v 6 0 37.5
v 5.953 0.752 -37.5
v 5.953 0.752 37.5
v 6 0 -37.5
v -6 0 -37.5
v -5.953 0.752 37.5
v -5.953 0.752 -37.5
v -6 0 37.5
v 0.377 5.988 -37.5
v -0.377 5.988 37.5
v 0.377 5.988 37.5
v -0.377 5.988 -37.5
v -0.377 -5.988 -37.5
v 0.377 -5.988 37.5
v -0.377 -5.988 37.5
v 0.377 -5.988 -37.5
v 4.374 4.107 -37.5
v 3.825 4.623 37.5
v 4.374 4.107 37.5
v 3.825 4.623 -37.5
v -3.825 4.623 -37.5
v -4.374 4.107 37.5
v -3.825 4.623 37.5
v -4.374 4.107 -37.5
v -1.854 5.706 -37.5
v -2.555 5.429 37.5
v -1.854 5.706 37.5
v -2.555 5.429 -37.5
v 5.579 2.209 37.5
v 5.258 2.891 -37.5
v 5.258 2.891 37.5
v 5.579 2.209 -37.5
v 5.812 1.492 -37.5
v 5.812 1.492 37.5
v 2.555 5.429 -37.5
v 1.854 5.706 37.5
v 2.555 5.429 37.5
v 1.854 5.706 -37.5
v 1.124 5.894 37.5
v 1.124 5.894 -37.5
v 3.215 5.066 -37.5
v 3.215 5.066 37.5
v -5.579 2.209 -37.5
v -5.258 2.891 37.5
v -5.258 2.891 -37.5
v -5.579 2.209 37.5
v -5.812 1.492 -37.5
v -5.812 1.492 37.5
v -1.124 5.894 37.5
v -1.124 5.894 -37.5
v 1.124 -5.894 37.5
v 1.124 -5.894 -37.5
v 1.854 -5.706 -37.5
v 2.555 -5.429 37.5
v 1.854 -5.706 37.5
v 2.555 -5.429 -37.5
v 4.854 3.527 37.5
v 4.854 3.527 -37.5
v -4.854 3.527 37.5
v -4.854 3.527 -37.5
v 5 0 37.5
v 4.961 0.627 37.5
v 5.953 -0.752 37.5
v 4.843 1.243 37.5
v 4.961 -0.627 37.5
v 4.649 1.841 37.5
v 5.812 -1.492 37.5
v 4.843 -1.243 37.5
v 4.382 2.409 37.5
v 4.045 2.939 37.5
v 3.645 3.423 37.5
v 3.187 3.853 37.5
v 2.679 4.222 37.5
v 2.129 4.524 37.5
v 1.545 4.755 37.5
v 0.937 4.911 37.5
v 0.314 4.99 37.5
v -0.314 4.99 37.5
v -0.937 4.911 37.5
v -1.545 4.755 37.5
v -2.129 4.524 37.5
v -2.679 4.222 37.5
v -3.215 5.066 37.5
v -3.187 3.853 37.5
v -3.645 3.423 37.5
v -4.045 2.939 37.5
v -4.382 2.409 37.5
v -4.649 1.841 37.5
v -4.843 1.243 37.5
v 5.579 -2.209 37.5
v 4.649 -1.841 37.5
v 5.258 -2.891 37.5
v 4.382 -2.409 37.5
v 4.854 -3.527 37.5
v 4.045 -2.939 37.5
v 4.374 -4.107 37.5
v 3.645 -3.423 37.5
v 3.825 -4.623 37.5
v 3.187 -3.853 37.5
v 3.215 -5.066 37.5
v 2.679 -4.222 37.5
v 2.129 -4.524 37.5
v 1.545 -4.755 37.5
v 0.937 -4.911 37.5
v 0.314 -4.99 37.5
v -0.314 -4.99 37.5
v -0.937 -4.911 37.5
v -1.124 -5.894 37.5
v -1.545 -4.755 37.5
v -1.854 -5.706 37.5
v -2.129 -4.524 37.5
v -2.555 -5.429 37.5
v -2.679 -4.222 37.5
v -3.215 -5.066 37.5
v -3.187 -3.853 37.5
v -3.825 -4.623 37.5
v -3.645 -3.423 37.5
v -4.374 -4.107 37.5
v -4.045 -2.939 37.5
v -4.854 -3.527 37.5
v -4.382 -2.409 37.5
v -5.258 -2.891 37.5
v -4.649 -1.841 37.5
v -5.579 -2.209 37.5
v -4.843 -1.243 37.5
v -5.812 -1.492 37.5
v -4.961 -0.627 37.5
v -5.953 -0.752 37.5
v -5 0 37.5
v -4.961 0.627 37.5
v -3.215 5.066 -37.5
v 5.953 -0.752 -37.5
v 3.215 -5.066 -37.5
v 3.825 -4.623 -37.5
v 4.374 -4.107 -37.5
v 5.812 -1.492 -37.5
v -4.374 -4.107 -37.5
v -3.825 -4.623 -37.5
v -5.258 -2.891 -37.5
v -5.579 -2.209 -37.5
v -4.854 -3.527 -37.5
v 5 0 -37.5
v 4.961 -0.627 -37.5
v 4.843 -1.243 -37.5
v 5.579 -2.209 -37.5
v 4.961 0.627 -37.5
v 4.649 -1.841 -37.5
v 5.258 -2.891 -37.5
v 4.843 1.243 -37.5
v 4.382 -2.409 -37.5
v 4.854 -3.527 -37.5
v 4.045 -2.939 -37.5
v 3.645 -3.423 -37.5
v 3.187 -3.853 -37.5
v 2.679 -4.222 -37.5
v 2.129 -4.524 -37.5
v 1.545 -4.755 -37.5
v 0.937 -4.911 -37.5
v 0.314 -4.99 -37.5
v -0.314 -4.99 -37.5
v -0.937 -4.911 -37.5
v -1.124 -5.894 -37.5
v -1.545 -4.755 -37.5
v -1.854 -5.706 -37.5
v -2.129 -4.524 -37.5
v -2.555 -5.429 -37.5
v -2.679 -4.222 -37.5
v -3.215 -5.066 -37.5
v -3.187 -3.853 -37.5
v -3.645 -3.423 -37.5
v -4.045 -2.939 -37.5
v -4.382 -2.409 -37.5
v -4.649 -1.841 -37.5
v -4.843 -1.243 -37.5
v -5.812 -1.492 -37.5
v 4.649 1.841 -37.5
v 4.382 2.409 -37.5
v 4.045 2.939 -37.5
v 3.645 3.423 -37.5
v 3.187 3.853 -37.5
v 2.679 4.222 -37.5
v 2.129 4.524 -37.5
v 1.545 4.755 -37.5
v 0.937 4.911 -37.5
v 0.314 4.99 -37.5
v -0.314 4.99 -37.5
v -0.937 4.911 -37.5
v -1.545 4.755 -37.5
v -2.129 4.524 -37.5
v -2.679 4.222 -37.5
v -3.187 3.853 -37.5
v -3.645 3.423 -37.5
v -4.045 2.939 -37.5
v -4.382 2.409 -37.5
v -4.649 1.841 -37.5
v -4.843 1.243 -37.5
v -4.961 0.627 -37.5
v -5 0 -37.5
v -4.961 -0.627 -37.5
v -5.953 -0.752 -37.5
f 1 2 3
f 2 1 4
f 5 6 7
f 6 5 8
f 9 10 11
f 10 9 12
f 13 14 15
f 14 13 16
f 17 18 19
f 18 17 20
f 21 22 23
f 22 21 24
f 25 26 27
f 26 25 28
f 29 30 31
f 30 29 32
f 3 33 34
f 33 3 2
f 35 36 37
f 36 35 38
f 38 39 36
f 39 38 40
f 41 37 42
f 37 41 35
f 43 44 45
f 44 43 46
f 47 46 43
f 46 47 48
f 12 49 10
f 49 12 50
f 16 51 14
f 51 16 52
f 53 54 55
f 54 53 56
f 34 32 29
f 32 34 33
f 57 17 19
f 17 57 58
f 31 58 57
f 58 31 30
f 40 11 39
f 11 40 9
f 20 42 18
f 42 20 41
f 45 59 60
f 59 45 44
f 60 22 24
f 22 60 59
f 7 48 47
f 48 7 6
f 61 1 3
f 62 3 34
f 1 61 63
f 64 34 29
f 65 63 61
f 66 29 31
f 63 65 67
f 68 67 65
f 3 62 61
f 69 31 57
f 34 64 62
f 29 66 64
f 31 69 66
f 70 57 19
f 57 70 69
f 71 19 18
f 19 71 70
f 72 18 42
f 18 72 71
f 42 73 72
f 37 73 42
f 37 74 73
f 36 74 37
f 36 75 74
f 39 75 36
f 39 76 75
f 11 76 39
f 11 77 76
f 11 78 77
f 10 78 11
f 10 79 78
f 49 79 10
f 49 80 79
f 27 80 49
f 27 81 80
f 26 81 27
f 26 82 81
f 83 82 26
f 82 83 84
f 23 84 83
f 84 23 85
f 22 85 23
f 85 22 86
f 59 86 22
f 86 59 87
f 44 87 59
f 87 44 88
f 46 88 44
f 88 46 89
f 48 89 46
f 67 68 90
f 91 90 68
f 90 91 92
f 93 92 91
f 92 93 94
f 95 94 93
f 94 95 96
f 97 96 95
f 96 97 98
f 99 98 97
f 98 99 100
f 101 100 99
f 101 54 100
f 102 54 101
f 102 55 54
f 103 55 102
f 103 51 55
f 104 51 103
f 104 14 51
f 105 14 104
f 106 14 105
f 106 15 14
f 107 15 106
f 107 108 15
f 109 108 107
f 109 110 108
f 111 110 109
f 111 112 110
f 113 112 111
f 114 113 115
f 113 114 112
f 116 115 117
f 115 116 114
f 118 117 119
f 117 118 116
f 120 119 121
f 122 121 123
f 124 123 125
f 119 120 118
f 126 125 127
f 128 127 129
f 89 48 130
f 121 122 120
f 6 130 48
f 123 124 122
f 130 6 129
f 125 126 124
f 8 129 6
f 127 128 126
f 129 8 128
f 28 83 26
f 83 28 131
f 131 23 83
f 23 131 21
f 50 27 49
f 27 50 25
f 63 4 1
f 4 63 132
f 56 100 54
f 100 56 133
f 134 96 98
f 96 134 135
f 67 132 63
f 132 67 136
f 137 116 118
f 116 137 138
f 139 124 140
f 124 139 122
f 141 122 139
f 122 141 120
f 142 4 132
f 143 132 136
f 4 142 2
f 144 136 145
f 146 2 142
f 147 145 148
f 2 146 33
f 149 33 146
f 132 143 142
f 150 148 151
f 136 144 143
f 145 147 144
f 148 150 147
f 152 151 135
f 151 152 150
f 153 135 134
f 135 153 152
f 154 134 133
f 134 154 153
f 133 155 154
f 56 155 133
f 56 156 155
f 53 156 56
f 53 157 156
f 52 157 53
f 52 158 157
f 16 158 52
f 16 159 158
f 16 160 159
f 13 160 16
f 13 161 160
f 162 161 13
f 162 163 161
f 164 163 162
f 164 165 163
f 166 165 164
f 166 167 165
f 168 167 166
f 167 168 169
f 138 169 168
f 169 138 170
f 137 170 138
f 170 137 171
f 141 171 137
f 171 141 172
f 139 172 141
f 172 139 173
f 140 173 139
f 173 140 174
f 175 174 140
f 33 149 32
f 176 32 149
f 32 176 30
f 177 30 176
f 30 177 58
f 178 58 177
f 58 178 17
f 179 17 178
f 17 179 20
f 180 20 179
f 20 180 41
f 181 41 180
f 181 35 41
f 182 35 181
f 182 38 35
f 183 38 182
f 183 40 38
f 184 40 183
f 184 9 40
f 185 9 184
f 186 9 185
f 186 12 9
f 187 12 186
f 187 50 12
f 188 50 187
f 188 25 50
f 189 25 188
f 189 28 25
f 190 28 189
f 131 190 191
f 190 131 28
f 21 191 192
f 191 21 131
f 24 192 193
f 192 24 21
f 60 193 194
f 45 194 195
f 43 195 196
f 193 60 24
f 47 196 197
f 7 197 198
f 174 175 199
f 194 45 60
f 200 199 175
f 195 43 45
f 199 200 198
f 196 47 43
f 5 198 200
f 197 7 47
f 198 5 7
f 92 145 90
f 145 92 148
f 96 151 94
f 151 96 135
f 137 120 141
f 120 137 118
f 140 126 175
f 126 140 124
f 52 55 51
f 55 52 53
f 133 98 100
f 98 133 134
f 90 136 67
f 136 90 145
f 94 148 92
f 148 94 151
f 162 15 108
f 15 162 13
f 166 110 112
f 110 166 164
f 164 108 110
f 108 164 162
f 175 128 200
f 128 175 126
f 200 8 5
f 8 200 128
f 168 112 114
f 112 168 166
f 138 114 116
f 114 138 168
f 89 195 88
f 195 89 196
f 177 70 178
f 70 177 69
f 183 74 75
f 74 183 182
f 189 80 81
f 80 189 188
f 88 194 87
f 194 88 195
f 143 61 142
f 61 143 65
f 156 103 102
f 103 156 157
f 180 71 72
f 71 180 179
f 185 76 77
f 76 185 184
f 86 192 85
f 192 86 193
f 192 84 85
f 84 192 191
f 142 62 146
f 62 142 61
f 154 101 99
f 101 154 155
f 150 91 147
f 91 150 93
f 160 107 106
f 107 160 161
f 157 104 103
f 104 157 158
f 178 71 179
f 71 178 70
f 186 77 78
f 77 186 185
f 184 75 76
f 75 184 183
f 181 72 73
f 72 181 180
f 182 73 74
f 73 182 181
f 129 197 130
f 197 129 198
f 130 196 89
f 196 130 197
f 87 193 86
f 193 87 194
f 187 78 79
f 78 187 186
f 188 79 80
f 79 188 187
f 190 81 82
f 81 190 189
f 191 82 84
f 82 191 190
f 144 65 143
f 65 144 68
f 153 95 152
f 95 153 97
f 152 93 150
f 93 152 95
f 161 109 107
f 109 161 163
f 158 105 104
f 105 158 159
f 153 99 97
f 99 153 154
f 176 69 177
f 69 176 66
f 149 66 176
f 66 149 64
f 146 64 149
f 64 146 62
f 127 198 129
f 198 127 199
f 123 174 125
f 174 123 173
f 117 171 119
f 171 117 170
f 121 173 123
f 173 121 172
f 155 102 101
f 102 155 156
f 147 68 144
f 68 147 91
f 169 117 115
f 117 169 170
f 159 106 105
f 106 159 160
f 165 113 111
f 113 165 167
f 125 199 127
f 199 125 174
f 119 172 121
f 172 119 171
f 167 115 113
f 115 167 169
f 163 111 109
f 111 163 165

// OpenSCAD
$fn = 50;


difference() {
	union() {
		translate(v = [0, 0, -37.5000000000]) {
			cylinder(h = 75, r = 6.0000000000);
		}
	}
	union() {
		translate(v = [0, 0, -100.0000000000]) {
			cylinder(h = 200, r = 5);
		}
	}
}
